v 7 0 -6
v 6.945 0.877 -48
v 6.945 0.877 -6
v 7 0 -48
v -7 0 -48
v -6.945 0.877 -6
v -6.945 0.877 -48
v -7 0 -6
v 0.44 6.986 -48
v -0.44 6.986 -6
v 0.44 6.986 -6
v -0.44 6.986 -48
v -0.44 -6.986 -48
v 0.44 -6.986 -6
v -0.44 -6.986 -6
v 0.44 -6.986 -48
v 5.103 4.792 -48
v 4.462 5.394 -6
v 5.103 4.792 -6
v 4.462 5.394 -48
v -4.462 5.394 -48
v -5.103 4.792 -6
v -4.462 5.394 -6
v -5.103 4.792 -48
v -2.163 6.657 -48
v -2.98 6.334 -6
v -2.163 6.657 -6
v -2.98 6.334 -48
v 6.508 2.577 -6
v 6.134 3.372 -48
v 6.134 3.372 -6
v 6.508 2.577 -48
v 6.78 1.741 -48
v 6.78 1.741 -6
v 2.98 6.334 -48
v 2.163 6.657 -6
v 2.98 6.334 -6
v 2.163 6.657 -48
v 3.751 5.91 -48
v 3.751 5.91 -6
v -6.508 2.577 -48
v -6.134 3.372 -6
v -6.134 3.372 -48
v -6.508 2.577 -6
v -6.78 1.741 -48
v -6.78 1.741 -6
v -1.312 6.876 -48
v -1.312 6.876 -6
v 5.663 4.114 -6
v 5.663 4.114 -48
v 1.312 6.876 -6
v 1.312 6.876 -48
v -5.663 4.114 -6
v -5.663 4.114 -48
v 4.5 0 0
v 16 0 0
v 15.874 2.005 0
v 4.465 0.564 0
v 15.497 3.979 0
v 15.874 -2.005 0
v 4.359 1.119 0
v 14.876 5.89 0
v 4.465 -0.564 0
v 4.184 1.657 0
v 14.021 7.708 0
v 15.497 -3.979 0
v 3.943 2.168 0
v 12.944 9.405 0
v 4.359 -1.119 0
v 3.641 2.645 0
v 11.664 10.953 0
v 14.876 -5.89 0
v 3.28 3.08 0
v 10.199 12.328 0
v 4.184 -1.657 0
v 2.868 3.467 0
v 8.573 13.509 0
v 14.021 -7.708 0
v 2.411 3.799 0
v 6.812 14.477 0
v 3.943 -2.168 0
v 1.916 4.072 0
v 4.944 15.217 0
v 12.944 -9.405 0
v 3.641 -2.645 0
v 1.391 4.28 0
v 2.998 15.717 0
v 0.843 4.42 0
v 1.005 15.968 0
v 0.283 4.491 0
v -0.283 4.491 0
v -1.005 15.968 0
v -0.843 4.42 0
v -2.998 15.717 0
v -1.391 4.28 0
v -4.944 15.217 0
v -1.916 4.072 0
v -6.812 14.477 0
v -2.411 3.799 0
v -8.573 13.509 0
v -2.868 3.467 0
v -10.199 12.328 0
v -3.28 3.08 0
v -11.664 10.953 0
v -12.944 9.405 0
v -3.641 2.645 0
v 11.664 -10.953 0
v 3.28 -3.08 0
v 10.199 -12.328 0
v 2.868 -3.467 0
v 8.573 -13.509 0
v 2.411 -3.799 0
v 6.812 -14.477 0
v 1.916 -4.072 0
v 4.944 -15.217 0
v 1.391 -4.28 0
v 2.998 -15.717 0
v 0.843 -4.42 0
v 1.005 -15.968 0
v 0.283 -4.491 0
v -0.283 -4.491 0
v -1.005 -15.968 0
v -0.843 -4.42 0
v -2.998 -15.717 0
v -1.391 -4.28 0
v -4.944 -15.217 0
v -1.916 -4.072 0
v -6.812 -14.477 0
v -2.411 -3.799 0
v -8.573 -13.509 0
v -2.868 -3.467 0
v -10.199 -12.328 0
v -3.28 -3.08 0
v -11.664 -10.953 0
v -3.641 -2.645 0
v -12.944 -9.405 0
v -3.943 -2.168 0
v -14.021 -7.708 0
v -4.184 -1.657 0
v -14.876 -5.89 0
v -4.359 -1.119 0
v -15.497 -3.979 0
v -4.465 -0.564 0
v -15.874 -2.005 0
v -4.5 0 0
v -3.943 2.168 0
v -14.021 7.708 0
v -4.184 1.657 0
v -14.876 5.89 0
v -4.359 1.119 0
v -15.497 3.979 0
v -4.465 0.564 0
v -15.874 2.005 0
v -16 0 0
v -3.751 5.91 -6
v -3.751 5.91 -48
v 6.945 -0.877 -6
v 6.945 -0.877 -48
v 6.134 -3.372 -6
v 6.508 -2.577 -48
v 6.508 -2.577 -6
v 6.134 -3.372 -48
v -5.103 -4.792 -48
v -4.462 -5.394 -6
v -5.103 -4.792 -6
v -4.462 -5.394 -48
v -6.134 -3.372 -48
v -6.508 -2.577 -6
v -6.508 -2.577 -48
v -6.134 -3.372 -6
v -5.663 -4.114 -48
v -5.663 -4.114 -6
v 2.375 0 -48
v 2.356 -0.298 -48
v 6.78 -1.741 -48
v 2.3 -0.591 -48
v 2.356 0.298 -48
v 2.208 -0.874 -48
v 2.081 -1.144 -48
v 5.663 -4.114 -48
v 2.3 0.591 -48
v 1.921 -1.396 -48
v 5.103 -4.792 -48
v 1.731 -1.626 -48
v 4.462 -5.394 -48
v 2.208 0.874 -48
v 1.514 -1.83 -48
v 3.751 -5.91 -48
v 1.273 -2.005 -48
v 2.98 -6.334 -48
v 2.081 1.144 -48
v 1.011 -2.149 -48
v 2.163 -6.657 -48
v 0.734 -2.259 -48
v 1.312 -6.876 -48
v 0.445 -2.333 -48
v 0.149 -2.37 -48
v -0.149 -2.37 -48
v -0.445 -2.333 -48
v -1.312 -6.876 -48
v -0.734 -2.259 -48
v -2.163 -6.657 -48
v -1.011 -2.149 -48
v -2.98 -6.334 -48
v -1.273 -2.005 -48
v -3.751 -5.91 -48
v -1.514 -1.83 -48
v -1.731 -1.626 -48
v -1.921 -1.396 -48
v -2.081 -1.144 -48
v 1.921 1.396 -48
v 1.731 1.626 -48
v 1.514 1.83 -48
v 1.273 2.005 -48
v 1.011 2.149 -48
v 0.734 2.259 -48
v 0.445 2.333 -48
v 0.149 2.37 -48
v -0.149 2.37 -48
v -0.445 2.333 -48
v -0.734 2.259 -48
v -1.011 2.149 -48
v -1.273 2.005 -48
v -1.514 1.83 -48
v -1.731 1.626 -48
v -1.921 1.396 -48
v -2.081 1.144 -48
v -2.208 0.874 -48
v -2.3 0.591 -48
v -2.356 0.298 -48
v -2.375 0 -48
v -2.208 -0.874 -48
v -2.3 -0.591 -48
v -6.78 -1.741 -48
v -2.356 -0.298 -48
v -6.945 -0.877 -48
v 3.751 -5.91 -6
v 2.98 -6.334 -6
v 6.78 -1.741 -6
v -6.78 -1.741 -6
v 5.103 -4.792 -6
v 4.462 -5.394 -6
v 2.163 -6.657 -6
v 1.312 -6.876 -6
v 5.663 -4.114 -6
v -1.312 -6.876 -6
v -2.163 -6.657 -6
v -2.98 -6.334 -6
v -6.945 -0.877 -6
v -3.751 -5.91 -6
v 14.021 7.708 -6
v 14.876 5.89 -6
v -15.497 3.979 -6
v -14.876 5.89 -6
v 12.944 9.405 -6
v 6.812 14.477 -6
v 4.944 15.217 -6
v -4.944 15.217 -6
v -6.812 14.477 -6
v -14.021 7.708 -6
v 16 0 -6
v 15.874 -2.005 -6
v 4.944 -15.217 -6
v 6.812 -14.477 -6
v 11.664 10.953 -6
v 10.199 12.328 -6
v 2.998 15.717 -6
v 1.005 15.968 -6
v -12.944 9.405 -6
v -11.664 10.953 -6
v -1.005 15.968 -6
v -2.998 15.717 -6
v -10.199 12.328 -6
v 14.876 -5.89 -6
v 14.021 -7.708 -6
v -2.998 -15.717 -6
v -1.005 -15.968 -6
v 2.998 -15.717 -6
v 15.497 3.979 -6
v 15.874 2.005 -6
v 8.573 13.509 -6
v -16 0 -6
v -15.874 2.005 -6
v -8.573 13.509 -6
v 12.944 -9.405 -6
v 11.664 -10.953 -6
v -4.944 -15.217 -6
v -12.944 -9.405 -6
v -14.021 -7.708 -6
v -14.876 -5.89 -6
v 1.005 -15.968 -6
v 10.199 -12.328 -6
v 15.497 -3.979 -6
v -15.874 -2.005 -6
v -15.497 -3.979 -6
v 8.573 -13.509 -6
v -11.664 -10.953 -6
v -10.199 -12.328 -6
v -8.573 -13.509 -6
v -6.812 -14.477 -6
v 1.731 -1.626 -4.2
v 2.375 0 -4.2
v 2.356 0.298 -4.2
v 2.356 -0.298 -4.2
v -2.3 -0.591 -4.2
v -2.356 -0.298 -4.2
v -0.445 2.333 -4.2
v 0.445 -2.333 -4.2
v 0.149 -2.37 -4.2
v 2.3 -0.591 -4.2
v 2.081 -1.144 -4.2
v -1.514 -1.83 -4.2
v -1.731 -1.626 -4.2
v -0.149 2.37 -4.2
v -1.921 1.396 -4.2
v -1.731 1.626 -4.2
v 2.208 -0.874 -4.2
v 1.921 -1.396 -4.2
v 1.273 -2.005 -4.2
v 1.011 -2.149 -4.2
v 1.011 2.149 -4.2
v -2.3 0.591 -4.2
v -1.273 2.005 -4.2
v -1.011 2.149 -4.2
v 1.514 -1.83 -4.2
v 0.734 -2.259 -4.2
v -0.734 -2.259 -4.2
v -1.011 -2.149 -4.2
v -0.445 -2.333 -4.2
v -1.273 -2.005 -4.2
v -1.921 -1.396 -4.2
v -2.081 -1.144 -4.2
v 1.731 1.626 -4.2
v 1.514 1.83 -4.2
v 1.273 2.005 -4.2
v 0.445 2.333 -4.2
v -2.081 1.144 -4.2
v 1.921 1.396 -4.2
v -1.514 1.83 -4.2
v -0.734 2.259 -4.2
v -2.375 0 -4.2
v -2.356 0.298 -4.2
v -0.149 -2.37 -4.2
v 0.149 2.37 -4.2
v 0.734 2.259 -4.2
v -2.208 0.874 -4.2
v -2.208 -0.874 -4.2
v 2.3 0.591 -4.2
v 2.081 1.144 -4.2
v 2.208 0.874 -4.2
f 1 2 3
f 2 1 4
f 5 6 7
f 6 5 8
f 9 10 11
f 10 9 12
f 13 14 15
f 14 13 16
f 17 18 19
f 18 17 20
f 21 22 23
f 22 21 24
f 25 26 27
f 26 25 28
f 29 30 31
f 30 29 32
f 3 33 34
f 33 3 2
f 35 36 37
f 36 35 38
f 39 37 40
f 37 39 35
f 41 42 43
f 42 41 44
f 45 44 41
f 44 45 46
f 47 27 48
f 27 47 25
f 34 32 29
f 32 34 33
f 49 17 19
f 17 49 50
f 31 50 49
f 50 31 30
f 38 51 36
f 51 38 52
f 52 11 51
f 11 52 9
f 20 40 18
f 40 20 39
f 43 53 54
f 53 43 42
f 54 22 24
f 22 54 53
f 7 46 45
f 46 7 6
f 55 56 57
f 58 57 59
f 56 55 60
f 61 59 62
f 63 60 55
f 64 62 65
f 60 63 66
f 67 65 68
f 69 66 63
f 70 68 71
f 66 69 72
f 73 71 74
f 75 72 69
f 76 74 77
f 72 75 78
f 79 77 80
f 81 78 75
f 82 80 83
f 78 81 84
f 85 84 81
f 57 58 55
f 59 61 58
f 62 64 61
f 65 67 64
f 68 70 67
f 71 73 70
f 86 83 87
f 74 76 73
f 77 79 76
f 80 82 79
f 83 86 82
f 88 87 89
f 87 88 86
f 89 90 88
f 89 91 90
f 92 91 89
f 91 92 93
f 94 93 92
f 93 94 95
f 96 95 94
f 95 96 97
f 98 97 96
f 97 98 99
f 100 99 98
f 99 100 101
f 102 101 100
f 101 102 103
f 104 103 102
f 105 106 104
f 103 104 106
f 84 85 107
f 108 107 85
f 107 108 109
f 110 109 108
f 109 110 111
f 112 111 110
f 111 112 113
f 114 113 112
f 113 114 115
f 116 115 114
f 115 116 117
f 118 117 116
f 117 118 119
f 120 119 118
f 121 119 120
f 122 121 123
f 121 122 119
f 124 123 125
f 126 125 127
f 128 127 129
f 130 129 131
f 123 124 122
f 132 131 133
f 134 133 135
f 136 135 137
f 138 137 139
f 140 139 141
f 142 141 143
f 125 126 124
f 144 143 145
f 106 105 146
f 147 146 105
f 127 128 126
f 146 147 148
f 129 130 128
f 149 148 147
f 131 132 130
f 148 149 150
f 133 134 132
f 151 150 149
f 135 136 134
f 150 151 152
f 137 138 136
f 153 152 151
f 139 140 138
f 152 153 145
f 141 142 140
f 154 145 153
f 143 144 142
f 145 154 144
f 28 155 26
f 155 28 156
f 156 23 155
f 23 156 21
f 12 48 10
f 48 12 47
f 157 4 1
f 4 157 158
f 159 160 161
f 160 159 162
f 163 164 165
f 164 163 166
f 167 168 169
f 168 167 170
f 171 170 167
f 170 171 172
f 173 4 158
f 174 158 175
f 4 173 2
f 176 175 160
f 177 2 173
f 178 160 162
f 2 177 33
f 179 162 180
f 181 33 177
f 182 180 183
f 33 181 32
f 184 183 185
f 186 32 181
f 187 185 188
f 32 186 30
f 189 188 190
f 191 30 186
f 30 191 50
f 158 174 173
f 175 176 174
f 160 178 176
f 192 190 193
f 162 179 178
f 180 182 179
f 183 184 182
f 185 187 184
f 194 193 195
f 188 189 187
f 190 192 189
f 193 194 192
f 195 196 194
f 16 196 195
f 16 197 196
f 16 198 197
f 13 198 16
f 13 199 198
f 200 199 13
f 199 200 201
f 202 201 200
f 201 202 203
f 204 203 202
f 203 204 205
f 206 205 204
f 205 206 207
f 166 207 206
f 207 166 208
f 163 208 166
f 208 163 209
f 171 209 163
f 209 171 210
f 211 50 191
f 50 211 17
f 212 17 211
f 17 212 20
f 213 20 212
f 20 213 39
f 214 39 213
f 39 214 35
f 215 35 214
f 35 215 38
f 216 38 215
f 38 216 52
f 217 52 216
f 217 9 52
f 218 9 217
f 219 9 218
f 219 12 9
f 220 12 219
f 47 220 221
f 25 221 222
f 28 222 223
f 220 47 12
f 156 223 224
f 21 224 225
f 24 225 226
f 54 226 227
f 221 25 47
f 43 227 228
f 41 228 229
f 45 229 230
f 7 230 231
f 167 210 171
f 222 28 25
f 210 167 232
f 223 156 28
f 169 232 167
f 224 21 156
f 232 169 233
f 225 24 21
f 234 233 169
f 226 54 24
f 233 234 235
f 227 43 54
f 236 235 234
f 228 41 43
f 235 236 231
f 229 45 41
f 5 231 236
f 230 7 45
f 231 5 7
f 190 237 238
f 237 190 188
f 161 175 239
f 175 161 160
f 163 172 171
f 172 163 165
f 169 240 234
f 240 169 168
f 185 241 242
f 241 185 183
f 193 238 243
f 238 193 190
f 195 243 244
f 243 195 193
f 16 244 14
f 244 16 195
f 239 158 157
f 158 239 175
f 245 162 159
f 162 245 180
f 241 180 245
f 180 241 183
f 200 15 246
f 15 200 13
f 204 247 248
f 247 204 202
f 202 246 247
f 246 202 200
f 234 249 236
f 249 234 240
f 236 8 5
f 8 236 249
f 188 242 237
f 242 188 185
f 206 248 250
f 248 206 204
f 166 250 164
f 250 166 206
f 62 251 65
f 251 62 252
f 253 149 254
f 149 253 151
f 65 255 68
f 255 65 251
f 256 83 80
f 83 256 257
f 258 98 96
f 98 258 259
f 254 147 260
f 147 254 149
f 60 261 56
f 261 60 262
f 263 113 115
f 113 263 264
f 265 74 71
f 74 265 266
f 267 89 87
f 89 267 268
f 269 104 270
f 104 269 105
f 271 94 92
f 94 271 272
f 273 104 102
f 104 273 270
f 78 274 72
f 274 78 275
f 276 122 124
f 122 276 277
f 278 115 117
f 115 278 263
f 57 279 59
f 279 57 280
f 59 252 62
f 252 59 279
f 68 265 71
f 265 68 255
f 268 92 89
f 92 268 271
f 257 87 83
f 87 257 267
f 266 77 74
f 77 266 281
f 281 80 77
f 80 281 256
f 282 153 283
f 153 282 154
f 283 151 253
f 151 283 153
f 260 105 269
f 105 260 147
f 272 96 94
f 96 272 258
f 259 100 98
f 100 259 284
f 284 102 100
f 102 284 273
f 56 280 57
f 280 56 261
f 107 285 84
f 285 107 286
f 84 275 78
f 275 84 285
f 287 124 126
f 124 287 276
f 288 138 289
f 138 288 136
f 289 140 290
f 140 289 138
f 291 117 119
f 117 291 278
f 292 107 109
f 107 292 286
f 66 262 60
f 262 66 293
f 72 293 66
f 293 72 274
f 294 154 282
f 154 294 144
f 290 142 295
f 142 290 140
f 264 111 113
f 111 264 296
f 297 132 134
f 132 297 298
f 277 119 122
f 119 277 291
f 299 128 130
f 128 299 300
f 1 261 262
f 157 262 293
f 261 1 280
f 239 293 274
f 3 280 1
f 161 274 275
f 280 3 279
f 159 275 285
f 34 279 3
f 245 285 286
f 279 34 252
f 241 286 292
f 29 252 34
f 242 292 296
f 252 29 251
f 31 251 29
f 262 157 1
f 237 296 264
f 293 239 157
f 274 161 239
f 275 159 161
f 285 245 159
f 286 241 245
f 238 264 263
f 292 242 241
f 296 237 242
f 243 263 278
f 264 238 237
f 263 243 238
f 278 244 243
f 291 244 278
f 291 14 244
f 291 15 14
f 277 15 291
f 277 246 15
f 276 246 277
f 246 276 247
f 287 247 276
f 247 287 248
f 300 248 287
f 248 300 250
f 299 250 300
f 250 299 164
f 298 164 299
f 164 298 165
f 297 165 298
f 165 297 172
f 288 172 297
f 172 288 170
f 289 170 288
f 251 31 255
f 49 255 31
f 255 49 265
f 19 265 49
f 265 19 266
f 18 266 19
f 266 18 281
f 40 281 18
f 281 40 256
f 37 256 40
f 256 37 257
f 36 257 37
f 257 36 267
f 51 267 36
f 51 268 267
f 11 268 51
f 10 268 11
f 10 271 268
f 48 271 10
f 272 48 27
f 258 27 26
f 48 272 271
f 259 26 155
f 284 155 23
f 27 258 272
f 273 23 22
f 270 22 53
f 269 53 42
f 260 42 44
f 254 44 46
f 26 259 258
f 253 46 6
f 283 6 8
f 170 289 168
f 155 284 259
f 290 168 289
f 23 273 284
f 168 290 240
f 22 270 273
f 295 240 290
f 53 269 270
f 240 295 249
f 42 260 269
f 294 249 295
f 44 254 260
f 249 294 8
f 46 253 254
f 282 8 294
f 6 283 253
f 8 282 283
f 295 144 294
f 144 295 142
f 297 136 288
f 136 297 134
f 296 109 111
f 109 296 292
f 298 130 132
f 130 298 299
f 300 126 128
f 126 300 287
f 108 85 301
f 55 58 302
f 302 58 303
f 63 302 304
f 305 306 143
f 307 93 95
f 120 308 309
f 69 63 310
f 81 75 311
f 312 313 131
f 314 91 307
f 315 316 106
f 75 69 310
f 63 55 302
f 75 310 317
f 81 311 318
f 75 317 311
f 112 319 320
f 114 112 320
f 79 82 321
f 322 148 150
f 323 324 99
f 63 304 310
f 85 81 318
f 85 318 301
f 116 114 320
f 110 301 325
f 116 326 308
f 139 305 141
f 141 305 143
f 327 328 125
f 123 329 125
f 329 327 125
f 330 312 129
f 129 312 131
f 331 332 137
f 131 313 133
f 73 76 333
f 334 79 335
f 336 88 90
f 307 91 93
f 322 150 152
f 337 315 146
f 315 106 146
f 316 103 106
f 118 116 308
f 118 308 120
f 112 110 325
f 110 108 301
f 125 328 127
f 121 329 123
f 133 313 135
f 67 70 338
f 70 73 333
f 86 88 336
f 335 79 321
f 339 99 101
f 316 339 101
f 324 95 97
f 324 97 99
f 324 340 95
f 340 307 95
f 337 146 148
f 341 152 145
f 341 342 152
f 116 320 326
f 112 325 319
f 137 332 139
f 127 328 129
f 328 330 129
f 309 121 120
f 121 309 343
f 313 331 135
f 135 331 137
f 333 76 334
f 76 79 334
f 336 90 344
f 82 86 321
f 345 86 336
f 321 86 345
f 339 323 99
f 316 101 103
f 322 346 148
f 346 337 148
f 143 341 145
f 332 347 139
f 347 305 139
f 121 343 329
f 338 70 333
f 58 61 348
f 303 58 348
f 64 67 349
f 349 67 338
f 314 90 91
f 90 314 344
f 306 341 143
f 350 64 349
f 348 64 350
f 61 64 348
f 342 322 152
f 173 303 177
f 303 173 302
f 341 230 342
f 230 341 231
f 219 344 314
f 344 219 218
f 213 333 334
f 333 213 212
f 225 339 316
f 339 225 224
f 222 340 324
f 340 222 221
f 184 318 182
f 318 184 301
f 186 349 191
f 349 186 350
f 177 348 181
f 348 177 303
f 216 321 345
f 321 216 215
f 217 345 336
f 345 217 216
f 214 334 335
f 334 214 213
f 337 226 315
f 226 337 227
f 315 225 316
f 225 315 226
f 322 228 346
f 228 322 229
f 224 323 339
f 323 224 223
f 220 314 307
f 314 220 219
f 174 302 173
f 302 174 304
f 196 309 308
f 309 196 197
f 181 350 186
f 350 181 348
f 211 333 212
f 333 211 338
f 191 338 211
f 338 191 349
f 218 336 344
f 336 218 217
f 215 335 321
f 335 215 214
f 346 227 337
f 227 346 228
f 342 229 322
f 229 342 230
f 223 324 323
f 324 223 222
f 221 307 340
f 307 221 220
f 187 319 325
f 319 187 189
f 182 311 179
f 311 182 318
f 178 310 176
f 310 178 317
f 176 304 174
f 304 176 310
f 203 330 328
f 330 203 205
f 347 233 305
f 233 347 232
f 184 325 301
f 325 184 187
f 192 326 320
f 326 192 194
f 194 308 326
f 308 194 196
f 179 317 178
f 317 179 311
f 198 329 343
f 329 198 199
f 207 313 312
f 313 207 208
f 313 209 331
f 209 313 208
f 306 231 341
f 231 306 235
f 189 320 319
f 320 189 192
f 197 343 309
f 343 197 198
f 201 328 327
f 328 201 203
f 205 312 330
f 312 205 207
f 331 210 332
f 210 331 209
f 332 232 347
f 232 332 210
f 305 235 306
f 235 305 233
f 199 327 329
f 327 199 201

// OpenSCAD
$fn = 50;


difference() {
	union() {
		translate(v = [0, 0, -48.0000000000]) {
			cylinder(h = 48, r = 7.0000000000);
		}
		translate(v = [0, 0, -6.0000000000]) {
			cylinder(h = 6, r = 16.0000000000);
		}
	}
	union() {
		translate(v = [0, 0, 0]) {
			rotate(a = [0, 0, 0]) {
				difference() {
					union() {
						#translate(v = [0, 0, -48.0000000000]) {
							cylinder(h = 48, r = 2.2500000000);
						}
						#translate(v = [0, 0, -4.2000000000]) {
							cylinder(h = 4.2000000000, r1 = 2.3750000000, r2 = 4.5000000000);
						}
						#translate(v = [0, 0, -48.0000000000]) {
							cylinder(h = 48, r = 2.3750000000);
						}
						#translate(v = [0, 0, -48.0000000000]) {
							cylinder(h = 48, r = 2.2500000000);
						}
					}
					union();
				}
			}
		}
	}
}
